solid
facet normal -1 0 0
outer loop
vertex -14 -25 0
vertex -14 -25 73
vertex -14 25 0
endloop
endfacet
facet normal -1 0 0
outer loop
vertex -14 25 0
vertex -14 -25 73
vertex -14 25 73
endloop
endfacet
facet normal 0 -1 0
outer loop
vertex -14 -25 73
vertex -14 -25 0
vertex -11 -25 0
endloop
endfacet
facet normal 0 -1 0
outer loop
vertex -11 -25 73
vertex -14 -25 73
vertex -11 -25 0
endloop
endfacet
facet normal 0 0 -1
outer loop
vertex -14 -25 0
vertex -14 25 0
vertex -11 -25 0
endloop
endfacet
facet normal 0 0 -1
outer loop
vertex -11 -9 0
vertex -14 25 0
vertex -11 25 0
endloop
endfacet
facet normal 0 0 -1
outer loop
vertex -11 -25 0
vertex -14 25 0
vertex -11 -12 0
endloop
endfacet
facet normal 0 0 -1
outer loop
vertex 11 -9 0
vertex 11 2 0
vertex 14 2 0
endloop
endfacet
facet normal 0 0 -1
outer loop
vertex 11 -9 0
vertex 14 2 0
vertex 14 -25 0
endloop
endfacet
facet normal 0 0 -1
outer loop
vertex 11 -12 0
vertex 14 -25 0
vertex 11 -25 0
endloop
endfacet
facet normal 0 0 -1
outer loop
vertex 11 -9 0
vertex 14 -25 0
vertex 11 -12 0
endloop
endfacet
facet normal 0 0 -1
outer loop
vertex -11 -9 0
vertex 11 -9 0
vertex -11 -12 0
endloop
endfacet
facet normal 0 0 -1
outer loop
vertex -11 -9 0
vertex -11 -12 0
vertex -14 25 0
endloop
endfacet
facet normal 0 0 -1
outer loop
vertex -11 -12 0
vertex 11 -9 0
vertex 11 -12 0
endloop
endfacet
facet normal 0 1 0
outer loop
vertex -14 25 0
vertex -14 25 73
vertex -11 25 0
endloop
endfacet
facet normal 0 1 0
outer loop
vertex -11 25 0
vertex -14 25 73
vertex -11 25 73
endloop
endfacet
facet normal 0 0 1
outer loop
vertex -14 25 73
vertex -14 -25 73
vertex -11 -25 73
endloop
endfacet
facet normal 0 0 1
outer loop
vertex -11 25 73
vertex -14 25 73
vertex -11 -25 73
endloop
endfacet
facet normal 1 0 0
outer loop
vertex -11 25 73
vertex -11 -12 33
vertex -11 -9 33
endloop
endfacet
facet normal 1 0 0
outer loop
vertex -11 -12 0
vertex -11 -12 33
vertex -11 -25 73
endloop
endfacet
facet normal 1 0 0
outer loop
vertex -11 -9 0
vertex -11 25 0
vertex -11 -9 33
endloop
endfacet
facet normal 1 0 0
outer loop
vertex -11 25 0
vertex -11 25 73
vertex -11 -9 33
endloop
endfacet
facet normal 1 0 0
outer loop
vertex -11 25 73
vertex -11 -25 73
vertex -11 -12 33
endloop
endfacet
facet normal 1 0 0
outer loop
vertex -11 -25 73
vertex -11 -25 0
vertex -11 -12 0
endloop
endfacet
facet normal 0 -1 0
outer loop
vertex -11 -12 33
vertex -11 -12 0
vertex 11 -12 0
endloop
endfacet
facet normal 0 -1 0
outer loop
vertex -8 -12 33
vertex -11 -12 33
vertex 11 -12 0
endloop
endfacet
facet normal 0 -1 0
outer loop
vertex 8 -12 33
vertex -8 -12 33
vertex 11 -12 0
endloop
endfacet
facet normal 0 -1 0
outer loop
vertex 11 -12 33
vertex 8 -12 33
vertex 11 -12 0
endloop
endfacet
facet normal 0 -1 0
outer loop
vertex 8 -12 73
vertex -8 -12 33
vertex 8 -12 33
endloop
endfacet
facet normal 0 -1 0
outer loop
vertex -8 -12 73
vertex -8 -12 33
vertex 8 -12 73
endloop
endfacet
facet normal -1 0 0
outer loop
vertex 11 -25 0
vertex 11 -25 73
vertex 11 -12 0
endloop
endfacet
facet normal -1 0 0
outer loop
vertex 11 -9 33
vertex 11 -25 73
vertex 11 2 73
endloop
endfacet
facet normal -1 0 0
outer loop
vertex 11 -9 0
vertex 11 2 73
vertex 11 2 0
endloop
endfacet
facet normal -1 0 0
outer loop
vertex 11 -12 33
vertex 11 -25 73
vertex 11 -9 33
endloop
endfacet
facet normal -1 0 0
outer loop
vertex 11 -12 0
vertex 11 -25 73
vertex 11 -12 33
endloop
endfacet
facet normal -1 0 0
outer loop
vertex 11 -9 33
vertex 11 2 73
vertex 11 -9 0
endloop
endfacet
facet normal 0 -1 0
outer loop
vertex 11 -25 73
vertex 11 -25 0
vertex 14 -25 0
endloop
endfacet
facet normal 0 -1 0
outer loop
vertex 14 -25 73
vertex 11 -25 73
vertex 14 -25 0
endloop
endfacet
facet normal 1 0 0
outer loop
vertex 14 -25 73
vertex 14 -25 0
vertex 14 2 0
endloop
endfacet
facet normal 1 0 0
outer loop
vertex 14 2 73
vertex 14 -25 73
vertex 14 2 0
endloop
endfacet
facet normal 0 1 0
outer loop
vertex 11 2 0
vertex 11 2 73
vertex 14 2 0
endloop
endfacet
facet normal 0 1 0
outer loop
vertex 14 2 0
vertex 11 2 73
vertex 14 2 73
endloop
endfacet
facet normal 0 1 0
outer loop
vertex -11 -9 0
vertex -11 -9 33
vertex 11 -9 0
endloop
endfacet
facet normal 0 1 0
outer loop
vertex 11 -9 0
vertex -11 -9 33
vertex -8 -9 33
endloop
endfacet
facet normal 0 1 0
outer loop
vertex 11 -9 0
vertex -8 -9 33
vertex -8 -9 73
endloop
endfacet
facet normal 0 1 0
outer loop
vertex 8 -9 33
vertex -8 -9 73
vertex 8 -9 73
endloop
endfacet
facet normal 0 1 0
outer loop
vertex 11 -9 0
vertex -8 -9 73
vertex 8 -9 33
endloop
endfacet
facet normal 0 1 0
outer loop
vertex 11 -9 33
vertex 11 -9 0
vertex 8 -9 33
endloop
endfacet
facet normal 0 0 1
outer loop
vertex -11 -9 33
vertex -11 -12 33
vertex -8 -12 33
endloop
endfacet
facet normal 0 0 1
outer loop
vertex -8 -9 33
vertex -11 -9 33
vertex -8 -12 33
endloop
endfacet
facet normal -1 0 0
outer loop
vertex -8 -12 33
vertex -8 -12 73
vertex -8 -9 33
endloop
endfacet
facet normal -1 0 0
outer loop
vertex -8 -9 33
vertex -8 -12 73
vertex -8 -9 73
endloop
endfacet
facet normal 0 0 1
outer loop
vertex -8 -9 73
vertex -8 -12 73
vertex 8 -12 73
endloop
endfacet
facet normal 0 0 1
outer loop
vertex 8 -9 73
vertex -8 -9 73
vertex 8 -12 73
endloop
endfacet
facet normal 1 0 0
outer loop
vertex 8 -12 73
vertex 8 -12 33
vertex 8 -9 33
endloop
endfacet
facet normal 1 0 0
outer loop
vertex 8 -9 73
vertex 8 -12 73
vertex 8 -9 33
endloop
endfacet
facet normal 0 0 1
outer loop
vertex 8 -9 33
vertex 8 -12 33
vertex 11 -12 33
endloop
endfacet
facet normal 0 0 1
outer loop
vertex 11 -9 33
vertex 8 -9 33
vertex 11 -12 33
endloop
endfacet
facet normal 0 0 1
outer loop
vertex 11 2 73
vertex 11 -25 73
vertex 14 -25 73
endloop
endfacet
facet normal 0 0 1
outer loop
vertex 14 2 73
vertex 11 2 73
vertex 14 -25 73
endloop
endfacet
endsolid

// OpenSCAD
// back
translate([11,-25,0])
cube([3,27,73]);

// tray left
translate([-11,-12,0])
cube([22,3,33]);

// tray left
translate([-8,-12,33])
cube([16,3,40]);

// front
translate([-14,-25,0])
cube([3,50,73]);
